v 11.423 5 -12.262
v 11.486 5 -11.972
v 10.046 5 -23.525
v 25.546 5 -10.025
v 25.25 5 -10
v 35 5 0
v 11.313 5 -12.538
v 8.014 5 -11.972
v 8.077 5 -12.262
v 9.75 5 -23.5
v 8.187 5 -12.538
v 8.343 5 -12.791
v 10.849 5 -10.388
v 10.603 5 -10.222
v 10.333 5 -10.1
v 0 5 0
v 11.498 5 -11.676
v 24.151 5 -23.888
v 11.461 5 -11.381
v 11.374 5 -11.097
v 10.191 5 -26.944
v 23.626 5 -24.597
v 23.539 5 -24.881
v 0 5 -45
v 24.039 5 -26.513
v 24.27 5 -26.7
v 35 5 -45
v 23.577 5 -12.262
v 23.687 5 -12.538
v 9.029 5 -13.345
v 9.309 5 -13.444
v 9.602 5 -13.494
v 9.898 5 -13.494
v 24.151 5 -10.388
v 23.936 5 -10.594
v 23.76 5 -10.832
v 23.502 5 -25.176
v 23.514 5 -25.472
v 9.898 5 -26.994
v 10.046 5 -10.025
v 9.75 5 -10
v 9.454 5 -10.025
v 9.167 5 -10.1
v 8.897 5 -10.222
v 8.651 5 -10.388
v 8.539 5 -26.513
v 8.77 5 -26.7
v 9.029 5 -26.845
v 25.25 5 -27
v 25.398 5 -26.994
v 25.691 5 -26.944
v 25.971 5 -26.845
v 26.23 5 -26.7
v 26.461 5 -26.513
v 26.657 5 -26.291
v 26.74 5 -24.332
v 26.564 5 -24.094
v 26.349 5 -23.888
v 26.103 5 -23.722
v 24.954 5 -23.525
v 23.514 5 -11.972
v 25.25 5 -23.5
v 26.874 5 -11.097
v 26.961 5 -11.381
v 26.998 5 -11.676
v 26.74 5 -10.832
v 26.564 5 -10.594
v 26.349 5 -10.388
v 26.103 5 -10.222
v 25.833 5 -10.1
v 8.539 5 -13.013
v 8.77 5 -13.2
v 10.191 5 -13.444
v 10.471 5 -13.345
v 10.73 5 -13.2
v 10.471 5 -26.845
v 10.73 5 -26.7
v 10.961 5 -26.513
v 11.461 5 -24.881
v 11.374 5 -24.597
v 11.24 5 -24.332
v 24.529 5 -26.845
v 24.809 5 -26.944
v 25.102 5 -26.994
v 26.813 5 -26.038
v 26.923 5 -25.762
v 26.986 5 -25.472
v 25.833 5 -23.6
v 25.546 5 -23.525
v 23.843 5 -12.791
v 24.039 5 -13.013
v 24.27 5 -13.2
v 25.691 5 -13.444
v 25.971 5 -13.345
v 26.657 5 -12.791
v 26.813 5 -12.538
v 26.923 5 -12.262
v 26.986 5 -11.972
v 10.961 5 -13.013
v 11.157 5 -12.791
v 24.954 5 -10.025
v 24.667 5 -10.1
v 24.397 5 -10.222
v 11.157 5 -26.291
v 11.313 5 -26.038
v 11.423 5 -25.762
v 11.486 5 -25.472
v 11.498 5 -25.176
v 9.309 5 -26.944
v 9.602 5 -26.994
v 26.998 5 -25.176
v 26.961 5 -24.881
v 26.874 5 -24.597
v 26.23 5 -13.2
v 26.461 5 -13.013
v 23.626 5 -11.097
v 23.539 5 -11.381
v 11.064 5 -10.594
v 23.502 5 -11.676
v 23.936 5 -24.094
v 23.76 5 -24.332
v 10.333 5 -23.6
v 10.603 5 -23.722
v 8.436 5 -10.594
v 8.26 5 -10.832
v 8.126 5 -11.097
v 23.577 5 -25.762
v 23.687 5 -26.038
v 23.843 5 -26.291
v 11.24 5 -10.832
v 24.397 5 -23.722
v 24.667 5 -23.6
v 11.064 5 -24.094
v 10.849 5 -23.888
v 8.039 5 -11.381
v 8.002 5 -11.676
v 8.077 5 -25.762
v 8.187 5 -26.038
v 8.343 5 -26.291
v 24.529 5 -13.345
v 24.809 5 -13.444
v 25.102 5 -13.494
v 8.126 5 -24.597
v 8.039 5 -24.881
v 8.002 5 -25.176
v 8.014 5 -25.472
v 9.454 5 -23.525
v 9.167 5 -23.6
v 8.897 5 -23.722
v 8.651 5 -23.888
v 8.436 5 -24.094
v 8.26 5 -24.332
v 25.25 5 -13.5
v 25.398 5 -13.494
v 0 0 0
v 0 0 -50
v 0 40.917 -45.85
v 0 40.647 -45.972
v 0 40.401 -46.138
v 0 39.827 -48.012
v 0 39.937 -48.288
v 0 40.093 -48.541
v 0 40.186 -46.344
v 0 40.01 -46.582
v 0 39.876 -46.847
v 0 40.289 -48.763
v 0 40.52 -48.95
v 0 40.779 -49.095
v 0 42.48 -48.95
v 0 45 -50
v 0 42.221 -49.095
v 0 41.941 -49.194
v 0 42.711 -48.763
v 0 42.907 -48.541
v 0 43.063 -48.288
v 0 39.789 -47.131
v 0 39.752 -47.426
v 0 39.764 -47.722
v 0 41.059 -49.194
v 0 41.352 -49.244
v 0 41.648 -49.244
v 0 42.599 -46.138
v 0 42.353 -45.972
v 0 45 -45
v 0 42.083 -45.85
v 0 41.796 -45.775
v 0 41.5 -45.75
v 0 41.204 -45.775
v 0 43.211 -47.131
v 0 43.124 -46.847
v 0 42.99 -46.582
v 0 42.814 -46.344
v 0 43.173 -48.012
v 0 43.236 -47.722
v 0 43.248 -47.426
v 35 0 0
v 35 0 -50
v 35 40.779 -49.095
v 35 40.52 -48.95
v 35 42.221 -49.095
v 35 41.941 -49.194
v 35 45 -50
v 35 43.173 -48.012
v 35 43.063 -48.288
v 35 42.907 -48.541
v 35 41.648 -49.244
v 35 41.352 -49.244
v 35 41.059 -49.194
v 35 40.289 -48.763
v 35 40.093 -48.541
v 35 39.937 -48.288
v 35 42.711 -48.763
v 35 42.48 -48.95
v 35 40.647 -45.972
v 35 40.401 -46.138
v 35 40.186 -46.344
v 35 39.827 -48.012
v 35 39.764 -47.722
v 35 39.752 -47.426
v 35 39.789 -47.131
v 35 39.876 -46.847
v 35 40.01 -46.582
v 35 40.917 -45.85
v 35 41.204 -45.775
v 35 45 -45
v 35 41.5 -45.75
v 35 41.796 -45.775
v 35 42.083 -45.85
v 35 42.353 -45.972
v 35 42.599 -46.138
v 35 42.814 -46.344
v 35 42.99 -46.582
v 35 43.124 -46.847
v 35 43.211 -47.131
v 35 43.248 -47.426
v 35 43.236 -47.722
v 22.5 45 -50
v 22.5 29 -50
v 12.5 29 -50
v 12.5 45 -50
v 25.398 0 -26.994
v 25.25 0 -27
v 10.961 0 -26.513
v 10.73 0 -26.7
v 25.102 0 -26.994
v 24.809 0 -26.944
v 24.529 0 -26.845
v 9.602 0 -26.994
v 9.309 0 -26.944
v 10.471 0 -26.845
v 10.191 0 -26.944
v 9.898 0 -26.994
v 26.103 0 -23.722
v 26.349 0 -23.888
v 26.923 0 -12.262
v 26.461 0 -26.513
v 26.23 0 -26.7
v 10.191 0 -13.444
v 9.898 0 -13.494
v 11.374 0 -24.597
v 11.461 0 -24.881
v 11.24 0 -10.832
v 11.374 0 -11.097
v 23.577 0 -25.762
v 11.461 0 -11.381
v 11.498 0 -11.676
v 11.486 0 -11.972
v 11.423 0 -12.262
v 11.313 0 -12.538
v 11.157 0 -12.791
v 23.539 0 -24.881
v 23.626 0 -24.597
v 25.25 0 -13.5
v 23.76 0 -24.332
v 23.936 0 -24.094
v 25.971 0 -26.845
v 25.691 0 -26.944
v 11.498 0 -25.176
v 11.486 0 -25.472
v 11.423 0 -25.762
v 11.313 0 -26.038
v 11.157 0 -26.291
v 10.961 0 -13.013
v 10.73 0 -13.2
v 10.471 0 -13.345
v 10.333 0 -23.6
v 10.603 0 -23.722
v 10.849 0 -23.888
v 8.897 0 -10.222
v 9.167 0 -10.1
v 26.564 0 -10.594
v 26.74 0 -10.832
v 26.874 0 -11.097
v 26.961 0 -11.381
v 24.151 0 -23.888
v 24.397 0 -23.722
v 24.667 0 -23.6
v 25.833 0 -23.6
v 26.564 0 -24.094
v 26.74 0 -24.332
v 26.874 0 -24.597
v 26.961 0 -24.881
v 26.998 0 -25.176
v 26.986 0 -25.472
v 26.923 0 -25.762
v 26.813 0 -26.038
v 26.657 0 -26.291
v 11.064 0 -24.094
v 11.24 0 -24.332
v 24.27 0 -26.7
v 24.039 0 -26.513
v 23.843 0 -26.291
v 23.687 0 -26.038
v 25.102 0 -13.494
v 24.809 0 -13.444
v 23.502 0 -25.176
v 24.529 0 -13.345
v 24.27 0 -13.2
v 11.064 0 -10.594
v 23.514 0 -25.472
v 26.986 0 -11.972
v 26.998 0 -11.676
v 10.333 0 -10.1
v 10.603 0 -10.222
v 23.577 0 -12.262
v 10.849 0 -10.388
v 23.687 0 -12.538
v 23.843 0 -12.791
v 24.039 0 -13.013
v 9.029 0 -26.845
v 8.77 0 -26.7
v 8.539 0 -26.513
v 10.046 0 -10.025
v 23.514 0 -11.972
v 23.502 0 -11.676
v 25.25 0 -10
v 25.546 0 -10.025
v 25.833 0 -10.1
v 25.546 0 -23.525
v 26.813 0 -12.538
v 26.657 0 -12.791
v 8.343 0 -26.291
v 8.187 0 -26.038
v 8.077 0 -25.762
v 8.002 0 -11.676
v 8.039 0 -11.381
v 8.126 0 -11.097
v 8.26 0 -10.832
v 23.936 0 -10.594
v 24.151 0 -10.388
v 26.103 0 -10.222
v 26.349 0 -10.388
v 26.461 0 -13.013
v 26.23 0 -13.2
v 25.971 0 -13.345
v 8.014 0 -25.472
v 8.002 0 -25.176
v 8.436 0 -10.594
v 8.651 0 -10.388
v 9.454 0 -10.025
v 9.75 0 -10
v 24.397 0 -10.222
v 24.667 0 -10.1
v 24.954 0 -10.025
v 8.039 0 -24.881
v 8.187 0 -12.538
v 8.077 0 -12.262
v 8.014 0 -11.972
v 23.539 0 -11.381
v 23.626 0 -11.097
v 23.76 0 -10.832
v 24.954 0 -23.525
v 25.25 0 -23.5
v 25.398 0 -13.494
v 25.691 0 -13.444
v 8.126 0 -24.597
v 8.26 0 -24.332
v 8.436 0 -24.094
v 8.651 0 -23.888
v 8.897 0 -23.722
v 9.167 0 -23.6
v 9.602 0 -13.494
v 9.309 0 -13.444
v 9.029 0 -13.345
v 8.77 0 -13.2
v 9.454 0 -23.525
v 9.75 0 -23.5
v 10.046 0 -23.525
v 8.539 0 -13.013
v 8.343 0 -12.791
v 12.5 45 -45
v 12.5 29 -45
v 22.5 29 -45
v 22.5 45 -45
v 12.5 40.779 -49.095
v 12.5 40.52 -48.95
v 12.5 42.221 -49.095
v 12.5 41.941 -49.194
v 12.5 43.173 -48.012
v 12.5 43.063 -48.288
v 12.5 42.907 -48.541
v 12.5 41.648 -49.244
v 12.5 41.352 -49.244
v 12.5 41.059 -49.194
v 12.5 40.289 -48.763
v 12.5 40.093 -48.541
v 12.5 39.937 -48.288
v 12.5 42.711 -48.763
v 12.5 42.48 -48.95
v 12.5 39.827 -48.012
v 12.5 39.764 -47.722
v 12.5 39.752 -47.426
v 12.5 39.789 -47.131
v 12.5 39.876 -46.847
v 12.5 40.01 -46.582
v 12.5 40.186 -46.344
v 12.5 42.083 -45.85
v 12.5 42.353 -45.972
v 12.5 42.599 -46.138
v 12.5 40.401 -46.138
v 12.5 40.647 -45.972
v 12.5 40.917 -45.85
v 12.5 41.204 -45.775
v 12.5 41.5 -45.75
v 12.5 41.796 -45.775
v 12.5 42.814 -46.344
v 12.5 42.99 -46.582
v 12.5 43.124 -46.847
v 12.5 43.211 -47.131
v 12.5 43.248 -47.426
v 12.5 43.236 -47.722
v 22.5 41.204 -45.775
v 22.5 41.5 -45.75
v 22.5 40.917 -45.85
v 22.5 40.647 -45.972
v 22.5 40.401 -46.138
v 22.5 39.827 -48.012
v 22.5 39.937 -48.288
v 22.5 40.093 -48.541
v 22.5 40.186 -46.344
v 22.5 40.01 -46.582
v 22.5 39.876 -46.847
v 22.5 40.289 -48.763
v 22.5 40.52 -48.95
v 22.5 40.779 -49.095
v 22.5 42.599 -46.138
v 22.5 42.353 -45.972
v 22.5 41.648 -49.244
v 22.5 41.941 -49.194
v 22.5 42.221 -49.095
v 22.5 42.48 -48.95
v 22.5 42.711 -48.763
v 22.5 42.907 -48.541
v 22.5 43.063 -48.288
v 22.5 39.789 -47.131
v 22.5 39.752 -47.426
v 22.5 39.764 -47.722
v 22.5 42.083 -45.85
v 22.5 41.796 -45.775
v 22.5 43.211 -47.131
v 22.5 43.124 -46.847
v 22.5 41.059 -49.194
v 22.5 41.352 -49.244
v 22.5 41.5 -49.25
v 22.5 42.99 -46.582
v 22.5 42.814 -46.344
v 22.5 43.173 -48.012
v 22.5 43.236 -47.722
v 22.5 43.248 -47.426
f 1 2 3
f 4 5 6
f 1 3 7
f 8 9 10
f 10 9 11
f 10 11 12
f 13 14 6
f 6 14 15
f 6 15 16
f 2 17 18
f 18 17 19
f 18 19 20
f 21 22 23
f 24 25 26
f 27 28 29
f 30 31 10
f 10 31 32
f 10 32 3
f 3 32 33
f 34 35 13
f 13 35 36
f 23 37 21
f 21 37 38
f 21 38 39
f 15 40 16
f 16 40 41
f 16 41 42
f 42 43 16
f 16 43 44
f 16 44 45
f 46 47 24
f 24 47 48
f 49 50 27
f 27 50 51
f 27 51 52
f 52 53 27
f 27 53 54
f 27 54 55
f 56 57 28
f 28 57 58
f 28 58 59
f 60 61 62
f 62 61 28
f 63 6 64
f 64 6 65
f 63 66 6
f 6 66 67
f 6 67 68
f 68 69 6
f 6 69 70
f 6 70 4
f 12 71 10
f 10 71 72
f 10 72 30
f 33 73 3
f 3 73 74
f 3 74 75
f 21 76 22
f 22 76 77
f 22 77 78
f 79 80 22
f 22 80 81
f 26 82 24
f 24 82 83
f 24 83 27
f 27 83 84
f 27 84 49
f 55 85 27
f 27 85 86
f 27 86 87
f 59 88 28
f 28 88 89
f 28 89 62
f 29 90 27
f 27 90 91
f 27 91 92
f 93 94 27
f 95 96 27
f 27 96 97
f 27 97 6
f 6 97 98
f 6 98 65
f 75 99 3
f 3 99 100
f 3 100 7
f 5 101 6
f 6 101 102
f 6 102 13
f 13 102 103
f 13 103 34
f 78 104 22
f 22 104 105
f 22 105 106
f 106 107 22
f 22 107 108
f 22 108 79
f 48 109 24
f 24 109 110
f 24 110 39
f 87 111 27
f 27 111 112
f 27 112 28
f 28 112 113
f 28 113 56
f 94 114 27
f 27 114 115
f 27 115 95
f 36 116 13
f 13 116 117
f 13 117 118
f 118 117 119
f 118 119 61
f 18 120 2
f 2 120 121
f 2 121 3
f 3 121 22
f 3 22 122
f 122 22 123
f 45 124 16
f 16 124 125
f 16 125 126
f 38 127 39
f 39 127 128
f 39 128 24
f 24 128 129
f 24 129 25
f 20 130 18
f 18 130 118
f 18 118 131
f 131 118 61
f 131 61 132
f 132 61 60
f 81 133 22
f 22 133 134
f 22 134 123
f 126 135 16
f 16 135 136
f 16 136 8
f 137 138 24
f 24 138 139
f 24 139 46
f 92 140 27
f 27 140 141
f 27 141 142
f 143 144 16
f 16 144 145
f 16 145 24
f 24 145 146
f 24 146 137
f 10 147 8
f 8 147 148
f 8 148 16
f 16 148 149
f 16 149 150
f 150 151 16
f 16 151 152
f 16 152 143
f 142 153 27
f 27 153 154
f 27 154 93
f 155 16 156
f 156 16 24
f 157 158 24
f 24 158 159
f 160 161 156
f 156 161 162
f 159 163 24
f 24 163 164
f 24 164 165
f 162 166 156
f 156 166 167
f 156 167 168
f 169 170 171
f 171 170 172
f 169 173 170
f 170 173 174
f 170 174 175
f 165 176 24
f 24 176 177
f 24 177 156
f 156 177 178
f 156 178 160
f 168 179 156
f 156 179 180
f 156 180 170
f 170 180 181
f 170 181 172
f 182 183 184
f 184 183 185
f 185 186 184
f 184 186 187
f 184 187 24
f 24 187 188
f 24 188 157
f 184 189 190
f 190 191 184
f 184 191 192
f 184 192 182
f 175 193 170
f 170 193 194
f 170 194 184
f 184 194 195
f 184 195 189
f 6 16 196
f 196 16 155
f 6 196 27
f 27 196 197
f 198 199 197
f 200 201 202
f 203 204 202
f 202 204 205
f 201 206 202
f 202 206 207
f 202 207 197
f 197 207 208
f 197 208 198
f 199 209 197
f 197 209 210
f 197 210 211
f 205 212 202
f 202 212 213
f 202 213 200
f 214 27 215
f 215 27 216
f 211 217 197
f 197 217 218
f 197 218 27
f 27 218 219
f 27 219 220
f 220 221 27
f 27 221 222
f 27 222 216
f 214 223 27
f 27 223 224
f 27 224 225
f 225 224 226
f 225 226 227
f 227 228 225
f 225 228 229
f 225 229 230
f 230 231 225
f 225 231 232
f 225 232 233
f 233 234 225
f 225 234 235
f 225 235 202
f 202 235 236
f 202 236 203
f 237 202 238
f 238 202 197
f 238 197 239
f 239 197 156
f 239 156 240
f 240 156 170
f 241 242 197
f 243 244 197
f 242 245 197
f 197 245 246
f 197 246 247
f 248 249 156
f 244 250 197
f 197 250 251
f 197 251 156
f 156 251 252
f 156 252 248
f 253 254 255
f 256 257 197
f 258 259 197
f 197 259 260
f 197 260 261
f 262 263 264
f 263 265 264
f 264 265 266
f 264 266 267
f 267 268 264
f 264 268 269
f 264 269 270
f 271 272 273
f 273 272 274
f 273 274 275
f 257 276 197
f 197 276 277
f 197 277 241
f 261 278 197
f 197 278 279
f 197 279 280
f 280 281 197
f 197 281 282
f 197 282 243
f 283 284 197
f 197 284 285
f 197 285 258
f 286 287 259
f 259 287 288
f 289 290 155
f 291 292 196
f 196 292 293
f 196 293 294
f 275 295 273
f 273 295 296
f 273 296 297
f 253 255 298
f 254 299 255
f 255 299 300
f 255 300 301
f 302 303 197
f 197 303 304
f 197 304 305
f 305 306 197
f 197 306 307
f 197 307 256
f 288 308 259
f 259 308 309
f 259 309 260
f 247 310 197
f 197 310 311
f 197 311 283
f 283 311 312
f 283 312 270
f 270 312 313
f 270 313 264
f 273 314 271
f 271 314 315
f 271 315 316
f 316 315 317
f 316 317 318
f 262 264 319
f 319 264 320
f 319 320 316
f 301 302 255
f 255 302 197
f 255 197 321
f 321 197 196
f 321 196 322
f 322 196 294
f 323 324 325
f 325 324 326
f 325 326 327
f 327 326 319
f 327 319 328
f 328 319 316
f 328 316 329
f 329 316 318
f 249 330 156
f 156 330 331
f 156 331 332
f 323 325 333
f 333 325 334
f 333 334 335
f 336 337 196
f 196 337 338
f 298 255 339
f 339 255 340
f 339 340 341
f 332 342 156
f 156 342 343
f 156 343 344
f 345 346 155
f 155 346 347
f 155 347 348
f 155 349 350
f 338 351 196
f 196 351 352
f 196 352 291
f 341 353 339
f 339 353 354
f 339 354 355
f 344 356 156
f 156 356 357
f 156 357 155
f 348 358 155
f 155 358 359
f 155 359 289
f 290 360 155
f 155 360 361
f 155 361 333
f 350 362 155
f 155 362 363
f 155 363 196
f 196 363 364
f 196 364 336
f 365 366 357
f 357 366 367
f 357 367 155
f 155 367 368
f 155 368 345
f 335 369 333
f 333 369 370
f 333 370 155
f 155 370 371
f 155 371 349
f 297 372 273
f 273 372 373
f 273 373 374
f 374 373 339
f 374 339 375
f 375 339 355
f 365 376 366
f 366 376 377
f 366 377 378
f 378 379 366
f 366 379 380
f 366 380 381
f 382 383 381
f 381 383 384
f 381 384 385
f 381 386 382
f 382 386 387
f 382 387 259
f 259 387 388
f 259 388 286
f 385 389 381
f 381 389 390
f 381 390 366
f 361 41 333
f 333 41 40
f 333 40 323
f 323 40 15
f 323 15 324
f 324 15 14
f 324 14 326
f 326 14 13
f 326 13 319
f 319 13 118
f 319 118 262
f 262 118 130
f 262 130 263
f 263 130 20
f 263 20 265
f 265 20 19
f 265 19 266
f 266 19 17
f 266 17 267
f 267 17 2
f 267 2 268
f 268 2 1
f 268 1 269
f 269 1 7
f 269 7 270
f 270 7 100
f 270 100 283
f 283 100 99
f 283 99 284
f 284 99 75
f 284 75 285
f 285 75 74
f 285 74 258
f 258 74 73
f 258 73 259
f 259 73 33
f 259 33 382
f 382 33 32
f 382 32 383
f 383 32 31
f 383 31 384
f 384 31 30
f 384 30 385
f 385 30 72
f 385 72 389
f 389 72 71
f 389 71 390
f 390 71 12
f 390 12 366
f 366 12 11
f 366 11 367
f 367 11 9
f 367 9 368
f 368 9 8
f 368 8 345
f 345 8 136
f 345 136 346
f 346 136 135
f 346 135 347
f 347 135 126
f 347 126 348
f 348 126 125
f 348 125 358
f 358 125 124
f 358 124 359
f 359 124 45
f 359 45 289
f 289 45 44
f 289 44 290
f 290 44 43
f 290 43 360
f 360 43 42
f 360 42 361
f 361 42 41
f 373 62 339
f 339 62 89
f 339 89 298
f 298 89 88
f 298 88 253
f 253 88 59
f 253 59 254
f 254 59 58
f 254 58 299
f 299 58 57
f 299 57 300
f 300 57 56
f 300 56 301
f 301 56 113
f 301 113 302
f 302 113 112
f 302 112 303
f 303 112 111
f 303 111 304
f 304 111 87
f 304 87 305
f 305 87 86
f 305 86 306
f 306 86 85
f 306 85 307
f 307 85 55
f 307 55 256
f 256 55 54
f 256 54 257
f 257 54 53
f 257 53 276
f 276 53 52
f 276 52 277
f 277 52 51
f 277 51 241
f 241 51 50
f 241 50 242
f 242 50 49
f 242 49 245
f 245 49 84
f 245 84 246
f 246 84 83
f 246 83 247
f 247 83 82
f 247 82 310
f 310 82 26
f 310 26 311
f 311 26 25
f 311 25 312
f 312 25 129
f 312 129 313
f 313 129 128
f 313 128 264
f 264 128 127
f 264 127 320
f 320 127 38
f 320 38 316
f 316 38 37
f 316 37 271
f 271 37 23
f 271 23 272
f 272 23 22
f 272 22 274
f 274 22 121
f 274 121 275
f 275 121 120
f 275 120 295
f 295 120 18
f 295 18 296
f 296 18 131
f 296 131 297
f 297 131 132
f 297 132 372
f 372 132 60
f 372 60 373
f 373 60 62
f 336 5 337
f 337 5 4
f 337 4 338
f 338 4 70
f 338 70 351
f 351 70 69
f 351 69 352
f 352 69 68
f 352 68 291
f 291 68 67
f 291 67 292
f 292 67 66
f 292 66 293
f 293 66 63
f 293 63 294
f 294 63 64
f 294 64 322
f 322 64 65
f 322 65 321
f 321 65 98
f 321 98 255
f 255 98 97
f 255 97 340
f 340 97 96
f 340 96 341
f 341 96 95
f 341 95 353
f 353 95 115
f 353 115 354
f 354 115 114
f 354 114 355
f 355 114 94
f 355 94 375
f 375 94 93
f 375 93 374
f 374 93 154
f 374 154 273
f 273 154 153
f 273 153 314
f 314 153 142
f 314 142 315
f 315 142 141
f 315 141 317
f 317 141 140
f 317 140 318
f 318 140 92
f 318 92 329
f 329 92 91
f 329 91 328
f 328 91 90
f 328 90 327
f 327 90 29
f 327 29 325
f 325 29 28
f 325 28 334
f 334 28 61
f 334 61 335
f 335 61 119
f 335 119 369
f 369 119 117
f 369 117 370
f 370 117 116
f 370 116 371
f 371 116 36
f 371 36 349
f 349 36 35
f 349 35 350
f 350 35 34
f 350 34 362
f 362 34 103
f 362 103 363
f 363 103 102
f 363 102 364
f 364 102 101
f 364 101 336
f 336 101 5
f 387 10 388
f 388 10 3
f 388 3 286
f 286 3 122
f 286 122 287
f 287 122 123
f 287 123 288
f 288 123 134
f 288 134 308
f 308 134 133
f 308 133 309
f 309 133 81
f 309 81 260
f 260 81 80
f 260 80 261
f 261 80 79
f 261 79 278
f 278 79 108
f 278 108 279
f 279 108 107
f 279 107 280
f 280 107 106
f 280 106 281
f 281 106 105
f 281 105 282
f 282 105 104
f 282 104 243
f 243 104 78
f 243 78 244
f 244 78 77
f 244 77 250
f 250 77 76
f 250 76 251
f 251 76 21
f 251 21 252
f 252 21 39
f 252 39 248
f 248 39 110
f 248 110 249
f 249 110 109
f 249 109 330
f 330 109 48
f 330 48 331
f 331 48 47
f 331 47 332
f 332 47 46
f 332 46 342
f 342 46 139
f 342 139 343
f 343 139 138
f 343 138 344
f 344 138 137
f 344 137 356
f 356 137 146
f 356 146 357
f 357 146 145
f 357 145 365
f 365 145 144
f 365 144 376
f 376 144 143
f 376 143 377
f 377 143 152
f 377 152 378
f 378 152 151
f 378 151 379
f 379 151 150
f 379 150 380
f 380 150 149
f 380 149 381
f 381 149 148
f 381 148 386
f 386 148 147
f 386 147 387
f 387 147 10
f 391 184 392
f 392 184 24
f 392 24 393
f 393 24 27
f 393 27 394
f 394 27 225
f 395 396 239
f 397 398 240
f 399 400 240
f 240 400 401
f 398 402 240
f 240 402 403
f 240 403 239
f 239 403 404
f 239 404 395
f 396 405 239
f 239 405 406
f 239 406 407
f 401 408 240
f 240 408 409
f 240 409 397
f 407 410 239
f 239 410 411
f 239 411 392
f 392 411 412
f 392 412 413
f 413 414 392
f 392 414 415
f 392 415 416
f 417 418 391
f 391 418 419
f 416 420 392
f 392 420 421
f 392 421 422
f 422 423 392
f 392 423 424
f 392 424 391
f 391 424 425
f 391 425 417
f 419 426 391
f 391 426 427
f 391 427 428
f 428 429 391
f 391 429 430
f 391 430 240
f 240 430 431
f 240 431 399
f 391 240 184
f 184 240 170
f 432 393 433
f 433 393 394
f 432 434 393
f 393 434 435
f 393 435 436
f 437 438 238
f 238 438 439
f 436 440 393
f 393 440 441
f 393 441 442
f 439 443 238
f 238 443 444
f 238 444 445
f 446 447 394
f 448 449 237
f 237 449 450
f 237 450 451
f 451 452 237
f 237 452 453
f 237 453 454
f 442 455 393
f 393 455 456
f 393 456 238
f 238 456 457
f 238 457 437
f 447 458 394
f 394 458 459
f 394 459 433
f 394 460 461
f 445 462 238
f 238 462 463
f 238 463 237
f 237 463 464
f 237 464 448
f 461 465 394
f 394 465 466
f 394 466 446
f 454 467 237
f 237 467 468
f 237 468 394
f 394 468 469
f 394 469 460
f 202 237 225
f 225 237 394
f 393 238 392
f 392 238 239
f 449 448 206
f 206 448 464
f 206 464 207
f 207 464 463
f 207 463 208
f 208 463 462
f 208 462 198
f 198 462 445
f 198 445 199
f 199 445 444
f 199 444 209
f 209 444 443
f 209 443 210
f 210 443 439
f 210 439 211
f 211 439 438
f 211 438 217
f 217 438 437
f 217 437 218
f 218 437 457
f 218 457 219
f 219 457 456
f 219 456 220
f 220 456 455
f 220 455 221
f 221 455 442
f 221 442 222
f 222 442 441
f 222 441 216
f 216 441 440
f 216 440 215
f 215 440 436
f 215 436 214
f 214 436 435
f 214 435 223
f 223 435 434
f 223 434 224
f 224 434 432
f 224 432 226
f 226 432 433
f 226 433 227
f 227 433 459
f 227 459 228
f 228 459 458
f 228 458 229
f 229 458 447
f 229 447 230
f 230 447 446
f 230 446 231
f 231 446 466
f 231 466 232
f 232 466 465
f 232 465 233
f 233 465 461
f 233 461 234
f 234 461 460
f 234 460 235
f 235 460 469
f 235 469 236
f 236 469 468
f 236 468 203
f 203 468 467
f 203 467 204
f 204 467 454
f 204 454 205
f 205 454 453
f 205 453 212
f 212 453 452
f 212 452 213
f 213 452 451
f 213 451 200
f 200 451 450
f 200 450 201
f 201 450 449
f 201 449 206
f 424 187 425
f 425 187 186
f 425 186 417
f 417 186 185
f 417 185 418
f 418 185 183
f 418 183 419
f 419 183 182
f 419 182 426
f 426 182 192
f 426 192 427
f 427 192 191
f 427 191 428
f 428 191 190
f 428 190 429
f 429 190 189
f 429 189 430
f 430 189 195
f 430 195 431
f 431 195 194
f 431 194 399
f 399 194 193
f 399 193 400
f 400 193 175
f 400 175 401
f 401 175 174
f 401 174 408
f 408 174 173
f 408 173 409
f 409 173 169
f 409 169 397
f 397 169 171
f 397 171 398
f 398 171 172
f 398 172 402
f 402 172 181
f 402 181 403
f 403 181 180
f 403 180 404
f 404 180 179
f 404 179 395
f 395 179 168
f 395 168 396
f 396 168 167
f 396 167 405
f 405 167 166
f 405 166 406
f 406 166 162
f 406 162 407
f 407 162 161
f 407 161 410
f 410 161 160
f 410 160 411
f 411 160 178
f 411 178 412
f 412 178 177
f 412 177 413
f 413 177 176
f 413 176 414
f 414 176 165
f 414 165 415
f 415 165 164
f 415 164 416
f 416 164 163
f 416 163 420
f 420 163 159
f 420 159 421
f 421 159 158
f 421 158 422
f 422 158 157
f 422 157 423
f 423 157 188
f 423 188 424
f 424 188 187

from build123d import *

# Parameters (mm, degrees)
SKETCH1_W           = 35
SKETCH1_H           = 50
BOSS_EXTRUDE1_DEPTH = 5
SKETCH2_R           = 1.75
CUT_EXTRUDE1_DEPTH  = 6
SKETCH3_W           = 12.5
SKETCH3_H           = 5
BOSS_EXTRUDE2_DEPTH = 40
SKETCH4_W           = 10
SKETCH4_H           = 5
BOSS_EXTRUDE3_DEPTH = 24
SKETCH5_R           = 1.75
CUT_EXTRUDE2_DEPTH  = 36


with BuildPart() as part:
    # Sketch1 → Boss-Extrude1 (new body)
    with BuildSketch(Plane(origin=(0, 0, 0), x_dir=(1, 0, 0), z_dir=(0, 1, 0))):
        with Locations((17.5, 25)):
            Rectangle(SKETCH1_W, SKETCH1_H)
    extrude(amount=BOSS_EXTRUDE1_DEPTH)

    # Sketch2 → Cut-Extrude1 (cut, through all)
    with BuildSketch(Plane(origin=(0, 5, 0), x_dir=(1, 0, 0), z_dir=(0, 1, 0))):
        with Locations((9.75, 11.75)):
            Circle(SKETCH2_R)
        with Locations((9.75, 25.25)):
            Circle(SKETCH2_R)
        with Locations((25.25, 11.75)):
            Circle(SKETCH2_R)
        with Locations((25.25, 25.25)):
            Circle(SKETCH2_R)
    extrude(amount=-CUT_EXTRUDE1_DEPTH, mode=Mode.SUBTRACT)

    # Sketch3 → Boss-Extrude2 (add)
    with BuildSketch(Plane(origin=(0, 5, 0), x_dir=(1, 0, 0), z_dir=(0, 1, 0))):
        with Locations((6.25, 47.5)):
            Rectangle(SKETCH3_W, SKETCH3_H)
        with Locations((28.75, 47.5)):
            Rectangle(SKETCH3_W, SKETCH3_H)
    extrude(amount=BOSS_EXTRUDE2_DEPTH)

    # Sketch4 → Boss-Extrude3 (add)
    with BuildSketch(Plane(origin=(0, 5, 0), x_dir=(1, 0, 0), z_dir=(0, 1, 0))):
        with Locations((17.5, 47.5)):
            Rectangle(SKETCH4_W, SKETCH4_H)
    extrude(amount=BOSS_EXTRUDE3_DEPTH)

    # Sketch5 → Cut-Extrude2 (cut, through all)
    with BuildSketch(Plane.ZY):
        with Locations((-47.5, 41.5)):
            Circle(SKETCH5_R)
    extrude(amount=-CUT_EXTRUDE2_DEPTH, mode=Mode.SUBTRACT)


solid = part.part
